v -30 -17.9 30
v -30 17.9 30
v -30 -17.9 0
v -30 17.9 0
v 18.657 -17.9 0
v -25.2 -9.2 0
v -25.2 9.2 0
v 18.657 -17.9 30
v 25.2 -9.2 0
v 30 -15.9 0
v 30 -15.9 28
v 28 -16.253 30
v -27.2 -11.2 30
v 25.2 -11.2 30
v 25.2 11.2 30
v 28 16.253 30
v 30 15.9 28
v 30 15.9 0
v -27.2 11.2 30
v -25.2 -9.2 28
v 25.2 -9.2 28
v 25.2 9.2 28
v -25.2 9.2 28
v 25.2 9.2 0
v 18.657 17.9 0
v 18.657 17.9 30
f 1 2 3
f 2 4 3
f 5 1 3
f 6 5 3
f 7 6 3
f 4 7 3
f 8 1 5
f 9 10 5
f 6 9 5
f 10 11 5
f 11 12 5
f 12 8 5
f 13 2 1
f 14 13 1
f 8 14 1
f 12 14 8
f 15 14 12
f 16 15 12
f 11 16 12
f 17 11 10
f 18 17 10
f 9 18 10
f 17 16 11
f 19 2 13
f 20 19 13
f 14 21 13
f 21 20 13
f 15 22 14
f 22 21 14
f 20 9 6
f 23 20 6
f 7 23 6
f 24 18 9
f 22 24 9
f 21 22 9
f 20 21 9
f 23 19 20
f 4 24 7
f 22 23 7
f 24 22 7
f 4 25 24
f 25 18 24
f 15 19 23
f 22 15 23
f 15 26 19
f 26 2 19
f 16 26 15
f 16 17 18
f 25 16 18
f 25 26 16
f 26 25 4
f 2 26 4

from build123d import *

# Parameters (mm, degrees)
SKETCH_1_W          = 60
SKETCH_1_H          = 35.8
EXTRUDE_1_DEPTH     = 30
SKETCH_2_W          = 50.4
SKETCH_2_H          = 18.4
CUT_EXTRUDE_1_DEPTH = 47.047909833
CHAMFER_1_SIZE      = 2
CHAMFER_1_SIZE2     = 11.342563639
CHAMFER_2_SIZE      = 2


with BuildPart() as part:
    # 草图1 → 凸台-拉伸1 (new body)
    with BuildSketch(Plane.XY):
        Rectangle(SKETCH_1_W, SKETCH_1_H)
    extrude(amount=EXTRUDE_1_DEPTH)

    # 草图2 → 切除-拉伸1 (cut, through all)
    with BuildSketch(Plane.XY.offset(30)):
        Rectangle(SKETCH_2_W, SKETCH_2_H)
    extrude(amount=-CUT_EXTRUDE_1_DEPTH, mode=Mode.SUBTRACT)

    # 倒角1
    chamfer_1_edges = [part.edges().sort_by_distance(p)[0] for p in [
        (30, -17.9, 15),
        (30, 17.9, 15),
    ]]
    chamfer_1_side = [part.faces().sort_by_distance(p)[0] for p in [
        (30, 0, 15),
    ]]
    chamfer(chamfer_1_edges, length=CHAMFER_1_SIZE, length2=CHAMFER_1_SIZE2, reference=chamfer_1_side[0])

    # 倒角2
    chamfer_2_edges = [part.edges().sort_by_distance(p)[0] for p in [
        (0, 9.2, 30),
        (-25.2, 0, 30),
        (0, -9.2, 30),
        (30, 0, 30),
    ]]
    chamfer(chamfer_2_edges, length=CHAMFER_2_SIZE)


solid = part.part
